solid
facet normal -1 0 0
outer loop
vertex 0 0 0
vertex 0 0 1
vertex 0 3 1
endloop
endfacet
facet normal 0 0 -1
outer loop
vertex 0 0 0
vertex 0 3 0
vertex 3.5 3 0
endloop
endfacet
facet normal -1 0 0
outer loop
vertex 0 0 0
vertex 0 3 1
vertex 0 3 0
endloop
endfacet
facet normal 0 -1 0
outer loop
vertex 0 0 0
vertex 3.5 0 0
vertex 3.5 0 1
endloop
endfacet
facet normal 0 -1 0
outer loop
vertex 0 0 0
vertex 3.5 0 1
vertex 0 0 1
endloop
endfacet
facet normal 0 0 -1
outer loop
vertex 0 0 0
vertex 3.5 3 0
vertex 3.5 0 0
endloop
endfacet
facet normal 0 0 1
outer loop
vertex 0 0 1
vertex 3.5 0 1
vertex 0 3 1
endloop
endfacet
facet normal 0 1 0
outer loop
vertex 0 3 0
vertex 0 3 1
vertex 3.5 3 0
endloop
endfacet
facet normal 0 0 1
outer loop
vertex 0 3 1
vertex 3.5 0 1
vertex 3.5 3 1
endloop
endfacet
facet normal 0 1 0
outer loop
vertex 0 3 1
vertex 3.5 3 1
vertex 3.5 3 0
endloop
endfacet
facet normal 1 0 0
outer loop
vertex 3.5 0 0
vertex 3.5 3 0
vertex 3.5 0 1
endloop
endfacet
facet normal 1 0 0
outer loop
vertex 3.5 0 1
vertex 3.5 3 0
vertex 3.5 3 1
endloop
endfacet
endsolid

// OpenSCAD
/* Warning, this is a very basic generator with a lot of approximation 
input data : [VQFN, N2A, 3.5x3.0x1mm, 14, , A, C04-01059A]
generated by com.zoubworld.electronics.cad.model3d.Basic
Date : Sun Feb 15 10:50:49 CET 2026
*/

//body
color("black")
translate([0,0,0])
cube([3.5,3.0,1.0], center=false);
